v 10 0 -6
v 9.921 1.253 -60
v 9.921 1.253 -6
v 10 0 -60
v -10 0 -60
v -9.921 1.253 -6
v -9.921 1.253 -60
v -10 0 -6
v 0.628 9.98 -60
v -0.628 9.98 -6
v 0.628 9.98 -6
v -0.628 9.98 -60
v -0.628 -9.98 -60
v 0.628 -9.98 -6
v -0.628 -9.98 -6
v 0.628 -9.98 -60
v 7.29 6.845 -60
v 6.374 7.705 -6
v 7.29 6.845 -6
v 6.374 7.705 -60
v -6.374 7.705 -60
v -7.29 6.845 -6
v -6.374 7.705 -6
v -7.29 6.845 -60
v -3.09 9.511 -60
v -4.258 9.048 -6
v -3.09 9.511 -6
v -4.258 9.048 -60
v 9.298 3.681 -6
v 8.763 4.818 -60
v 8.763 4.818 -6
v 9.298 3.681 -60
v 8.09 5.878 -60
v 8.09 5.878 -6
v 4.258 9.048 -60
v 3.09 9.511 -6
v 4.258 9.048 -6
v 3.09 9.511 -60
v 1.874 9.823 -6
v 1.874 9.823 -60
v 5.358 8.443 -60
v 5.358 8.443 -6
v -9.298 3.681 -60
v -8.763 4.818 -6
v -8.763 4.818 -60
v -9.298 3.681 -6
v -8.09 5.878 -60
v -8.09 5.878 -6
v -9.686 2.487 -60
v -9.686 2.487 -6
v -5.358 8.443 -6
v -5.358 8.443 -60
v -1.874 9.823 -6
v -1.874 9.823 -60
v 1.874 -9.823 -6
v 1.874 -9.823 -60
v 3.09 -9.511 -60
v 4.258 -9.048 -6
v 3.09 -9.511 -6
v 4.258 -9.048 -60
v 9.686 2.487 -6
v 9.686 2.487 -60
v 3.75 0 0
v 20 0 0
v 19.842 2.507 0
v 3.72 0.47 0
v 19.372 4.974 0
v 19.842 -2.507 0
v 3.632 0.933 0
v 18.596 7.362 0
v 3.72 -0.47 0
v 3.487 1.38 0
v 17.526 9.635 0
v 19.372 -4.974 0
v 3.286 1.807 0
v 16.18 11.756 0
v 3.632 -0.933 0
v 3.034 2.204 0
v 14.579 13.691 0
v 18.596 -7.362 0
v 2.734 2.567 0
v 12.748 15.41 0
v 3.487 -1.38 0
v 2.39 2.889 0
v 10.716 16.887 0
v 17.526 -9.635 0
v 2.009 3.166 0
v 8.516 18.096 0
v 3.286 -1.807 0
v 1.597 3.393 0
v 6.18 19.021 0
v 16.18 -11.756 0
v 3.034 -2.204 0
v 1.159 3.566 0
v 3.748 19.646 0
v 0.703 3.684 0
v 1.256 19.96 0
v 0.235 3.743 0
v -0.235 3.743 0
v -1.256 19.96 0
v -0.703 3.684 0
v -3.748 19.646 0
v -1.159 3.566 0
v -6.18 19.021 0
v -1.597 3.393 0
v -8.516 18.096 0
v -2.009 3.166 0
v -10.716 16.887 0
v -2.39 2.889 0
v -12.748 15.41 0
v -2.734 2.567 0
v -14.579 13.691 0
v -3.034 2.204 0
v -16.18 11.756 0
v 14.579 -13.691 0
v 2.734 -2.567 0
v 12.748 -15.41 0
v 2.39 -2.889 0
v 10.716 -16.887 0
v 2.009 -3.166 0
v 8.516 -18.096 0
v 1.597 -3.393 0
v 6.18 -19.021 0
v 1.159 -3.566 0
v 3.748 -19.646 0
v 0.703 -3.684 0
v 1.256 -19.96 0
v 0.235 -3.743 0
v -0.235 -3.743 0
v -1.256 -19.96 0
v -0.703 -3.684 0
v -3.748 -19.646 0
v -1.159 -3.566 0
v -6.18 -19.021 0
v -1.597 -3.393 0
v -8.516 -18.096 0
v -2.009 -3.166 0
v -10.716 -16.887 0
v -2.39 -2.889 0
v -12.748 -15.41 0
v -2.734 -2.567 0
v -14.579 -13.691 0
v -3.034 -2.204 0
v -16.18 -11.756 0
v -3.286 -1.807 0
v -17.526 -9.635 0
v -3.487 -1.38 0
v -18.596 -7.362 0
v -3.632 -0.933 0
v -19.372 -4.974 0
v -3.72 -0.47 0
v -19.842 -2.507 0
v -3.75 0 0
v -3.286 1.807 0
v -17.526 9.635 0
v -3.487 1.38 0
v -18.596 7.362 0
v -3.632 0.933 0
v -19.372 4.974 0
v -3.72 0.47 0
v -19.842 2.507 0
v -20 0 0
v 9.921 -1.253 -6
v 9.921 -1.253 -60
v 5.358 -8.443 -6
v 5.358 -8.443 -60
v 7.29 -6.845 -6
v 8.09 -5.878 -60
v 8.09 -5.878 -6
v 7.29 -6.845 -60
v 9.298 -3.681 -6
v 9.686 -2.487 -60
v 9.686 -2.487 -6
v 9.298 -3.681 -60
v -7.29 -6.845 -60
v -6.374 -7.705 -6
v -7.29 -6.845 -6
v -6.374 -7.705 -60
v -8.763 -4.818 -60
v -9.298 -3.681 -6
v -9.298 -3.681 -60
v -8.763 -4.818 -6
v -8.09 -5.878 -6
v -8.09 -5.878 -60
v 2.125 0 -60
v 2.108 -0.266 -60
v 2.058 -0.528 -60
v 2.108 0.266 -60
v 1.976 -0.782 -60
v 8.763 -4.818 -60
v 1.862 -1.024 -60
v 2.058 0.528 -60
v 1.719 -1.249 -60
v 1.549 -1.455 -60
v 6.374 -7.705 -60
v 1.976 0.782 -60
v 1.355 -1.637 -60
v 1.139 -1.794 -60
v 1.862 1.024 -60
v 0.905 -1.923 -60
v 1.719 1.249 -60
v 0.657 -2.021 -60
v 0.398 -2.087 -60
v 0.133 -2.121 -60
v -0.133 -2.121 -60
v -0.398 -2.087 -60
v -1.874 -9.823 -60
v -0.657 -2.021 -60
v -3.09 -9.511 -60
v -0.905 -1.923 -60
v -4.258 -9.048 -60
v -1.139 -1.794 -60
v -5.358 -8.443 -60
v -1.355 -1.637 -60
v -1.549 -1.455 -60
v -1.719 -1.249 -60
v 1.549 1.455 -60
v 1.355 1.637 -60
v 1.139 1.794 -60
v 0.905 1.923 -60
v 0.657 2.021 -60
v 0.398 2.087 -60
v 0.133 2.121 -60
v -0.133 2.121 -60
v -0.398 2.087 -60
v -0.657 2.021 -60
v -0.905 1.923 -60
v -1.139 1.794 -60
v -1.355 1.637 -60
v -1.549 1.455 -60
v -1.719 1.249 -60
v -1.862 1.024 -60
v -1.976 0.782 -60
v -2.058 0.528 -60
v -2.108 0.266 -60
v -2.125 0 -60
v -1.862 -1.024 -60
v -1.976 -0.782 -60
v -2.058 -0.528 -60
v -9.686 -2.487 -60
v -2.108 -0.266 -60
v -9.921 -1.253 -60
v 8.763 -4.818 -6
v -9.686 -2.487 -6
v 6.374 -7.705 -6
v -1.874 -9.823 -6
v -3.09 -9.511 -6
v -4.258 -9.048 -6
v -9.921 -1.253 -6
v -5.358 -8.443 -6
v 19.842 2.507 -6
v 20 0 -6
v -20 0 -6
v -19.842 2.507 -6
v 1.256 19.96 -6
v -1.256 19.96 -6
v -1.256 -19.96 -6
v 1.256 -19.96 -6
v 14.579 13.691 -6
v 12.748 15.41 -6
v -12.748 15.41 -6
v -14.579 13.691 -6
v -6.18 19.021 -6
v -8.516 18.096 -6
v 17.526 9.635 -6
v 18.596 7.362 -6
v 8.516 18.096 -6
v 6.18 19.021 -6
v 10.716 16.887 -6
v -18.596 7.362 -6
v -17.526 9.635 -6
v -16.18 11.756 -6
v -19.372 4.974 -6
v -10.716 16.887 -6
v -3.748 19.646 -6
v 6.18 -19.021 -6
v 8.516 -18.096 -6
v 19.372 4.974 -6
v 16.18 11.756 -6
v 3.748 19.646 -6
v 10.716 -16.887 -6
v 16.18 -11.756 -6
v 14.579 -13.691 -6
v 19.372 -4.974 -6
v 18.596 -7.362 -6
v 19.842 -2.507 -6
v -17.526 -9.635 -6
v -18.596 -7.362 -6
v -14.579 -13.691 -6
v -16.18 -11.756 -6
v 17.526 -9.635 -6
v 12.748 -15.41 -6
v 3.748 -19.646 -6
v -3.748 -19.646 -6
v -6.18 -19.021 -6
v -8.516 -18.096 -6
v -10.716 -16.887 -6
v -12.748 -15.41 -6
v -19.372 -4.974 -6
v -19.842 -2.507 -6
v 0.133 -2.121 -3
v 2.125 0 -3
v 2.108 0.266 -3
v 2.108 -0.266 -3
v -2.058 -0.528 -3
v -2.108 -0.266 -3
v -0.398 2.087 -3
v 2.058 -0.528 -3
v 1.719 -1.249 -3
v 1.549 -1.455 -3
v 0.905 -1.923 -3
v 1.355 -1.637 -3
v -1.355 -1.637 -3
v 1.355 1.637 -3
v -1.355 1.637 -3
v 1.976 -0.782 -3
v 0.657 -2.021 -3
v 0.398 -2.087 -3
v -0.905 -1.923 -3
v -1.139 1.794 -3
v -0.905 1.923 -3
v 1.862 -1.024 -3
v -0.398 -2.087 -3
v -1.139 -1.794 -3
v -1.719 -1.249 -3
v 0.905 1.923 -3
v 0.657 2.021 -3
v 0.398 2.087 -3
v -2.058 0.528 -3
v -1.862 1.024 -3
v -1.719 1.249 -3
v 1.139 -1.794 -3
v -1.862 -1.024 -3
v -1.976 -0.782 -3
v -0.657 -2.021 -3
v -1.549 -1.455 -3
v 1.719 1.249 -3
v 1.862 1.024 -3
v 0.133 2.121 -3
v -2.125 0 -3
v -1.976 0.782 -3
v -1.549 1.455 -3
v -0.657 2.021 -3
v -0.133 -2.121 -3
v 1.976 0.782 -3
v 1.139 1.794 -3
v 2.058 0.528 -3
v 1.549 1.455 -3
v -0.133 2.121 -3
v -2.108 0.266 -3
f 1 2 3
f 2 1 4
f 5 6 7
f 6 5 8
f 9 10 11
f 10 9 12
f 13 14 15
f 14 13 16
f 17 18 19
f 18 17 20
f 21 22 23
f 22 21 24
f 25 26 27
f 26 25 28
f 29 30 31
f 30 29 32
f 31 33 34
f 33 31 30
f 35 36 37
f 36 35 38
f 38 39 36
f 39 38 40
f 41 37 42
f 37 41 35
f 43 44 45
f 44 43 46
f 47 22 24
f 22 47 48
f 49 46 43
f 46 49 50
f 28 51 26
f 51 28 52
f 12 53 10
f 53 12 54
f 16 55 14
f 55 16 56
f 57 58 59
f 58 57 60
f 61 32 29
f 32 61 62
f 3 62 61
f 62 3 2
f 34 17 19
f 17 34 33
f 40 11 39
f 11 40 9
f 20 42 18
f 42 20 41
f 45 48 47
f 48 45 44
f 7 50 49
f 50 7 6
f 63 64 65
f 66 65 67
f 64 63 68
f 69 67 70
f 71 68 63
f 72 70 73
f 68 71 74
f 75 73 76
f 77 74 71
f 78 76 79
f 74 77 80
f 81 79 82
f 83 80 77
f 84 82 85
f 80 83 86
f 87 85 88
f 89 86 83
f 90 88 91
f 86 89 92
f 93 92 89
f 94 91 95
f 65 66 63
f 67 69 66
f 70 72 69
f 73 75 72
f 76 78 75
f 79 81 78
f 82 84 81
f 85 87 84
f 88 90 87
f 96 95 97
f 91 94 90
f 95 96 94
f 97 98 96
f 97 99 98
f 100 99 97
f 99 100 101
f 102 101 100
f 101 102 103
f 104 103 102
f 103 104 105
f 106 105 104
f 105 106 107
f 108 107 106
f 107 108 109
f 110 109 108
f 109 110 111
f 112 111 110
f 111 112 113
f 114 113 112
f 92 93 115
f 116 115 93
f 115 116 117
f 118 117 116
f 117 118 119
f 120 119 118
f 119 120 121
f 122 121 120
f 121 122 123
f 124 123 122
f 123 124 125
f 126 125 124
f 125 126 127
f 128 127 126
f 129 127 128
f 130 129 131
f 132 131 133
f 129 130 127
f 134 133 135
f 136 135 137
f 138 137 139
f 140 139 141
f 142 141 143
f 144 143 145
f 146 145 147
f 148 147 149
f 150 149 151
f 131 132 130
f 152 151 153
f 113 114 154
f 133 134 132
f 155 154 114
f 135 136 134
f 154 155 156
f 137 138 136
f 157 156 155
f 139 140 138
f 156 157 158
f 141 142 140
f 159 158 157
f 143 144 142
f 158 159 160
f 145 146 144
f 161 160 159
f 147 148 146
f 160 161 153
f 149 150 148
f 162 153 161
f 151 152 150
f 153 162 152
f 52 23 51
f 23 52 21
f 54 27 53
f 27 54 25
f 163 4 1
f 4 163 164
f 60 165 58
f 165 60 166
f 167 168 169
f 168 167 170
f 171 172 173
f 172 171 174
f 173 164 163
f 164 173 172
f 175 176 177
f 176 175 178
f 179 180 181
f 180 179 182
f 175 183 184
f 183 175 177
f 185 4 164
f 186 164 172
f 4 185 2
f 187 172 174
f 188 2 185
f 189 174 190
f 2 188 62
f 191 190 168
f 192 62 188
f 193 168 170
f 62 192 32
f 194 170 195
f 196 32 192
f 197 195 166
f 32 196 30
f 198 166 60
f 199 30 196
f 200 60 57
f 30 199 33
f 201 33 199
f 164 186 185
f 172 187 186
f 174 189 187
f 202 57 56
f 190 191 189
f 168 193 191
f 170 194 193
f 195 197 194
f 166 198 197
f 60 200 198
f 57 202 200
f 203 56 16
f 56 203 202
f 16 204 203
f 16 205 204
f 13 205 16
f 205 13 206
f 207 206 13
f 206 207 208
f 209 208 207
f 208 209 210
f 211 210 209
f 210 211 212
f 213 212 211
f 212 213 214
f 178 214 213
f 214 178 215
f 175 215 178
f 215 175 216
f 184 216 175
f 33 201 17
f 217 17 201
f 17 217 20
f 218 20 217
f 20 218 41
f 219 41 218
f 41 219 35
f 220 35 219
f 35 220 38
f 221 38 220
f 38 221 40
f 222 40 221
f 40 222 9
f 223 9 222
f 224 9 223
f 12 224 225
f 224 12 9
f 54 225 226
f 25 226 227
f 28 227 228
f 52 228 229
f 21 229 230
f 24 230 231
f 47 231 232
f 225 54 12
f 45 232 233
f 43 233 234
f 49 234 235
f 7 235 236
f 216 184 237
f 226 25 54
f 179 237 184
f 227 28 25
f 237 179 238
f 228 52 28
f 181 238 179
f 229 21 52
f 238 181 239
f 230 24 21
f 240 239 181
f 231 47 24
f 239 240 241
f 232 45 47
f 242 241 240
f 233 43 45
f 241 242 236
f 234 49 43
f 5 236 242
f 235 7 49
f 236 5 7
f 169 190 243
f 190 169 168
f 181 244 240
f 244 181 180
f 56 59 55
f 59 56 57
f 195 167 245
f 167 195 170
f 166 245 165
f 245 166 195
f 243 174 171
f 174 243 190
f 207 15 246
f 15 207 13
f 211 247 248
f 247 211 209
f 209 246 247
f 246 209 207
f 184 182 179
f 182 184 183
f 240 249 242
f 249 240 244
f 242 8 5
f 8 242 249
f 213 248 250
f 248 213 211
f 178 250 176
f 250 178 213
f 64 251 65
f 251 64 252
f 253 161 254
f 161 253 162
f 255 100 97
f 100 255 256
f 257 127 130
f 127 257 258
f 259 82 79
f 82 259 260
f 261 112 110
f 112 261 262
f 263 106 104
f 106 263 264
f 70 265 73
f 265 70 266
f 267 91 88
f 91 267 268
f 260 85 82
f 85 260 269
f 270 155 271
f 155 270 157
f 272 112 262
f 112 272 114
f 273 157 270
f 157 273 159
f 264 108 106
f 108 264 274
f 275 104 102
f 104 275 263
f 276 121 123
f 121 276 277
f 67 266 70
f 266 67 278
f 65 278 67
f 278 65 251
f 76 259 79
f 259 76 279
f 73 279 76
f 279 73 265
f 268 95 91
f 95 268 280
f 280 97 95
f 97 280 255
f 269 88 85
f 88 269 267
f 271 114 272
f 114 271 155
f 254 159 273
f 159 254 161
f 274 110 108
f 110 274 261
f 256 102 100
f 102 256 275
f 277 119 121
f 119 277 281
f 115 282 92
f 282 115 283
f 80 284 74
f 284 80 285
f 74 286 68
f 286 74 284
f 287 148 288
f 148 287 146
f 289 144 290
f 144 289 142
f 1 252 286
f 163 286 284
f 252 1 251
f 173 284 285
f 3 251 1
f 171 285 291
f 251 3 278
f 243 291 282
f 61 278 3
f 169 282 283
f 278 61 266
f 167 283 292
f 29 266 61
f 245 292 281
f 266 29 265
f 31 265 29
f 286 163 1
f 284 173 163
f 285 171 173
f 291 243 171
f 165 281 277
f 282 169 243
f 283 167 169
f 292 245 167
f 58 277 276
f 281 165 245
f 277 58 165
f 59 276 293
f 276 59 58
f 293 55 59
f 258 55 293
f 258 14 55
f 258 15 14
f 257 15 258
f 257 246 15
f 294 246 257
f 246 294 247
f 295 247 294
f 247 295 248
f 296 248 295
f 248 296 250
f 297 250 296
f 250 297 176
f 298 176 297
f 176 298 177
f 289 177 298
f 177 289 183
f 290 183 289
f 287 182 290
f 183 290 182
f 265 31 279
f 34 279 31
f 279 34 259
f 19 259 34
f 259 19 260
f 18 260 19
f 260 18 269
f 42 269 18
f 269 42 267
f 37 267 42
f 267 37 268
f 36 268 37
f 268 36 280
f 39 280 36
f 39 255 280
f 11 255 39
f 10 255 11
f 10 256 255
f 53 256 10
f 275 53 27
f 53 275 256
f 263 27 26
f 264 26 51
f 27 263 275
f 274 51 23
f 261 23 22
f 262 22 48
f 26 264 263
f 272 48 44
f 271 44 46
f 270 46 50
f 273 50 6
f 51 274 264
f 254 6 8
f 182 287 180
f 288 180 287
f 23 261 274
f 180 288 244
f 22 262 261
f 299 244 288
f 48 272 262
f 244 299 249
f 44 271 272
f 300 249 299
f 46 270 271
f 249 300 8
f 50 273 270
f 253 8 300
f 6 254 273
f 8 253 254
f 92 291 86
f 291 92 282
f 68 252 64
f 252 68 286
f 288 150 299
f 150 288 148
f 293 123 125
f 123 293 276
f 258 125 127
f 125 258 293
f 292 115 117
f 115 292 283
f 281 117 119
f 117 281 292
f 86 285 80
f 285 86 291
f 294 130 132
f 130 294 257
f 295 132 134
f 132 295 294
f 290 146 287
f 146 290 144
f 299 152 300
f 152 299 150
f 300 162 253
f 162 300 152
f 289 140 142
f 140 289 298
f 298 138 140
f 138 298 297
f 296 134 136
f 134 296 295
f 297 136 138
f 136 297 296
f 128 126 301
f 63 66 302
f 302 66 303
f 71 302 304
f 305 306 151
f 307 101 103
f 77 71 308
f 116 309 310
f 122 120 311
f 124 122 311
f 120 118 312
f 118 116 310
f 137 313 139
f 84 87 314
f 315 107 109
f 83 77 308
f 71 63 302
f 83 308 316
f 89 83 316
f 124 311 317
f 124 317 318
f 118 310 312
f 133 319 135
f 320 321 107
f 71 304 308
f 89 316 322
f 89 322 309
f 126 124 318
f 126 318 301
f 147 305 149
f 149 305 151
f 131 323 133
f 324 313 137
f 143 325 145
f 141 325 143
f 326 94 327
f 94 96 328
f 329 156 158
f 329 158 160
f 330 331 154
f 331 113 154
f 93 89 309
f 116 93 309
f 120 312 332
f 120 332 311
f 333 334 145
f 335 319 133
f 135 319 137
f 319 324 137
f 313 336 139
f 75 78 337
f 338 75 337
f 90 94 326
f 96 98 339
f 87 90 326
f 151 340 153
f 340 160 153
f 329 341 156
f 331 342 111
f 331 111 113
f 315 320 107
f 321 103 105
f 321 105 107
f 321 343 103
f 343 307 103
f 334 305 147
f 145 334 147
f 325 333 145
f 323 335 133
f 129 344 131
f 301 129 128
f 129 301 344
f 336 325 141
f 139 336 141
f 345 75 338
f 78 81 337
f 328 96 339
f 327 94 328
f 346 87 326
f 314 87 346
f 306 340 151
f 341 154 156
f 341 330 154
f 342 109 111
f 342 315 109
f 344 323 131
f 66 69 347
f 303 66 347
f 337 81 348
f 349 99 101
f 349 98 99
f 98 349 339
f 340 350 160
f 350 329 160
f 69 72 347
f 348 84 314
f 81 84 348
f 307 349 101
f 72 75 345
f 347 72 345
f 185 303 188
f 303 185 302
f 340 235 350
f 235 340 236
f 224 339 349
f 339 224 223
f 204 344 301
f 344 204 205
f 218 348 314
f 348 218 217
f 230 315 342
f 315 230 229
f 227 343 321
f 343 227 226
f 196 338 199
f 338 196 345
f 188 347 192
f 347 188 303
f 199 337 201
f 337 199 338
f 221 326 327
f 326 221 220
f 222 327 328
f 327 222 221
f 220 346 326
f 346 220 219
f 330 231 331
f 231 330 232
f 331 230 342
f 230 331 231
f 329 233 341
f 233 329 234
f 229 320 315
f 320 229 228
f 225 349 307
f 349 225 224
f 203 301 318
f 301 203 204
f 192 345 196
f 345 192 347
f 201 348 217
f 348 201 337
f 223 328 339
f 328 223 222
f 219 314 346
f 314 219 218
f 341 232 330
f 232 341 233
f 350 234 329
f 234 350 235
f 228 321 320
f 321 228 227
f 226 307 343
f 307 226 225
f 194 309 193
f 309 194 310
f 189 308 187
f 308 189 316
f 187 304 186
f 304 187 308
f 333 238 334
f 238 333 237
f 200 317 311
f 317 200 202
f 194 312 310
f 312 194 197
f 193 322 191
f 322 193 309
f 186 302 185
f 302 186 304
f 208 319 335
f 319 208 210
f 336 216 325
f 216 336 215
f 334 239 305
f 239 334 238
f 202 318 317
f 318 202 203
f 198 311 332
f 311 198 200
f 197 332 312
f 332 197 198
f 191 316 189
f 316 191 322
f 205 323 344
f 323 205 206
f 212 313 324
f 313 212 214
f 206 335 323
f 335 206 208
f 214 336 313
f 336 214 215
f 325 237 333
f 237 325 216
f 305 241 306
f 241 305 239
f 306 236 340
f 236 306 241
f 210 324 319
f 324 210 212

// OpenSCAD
$fn = 50;


difference() {
	union() {
		translate(v = [0, 0, -60.0000000000]) {
			cylinder(h = 60, r = 10.0000000000);
		}
		translate(v = [0, 0, -6.0000000000]) {
			cylinder(h = 6, r = 20.0000000000);
		}
	}
	union() {
		translate(v = [0, 0, 0]) {
			rotate(a = [0, 0, 0]) {
				difference() {
					union() {
						#translate(v = [0, 0, -60.0000000000]) {
							cylinder(h = 60, r = 2.0000000000);
						}
						#translate(v = [0, 0, -3]) {
							cylinder(h = 3, r1 = 2.1250000000, r2 = 3.7500000000);
						}
						#translate(v = [0, 0, -60.0000000000]) {
							cylinder(h = 60, r = 2.1250000000);
						}
						#translate(v = [0, 0, -60.0000000000]) {
							cylinder(h = 60, r = 2.0000000000);
						}
					}
					union();
				}
			}
		}
	}
}
